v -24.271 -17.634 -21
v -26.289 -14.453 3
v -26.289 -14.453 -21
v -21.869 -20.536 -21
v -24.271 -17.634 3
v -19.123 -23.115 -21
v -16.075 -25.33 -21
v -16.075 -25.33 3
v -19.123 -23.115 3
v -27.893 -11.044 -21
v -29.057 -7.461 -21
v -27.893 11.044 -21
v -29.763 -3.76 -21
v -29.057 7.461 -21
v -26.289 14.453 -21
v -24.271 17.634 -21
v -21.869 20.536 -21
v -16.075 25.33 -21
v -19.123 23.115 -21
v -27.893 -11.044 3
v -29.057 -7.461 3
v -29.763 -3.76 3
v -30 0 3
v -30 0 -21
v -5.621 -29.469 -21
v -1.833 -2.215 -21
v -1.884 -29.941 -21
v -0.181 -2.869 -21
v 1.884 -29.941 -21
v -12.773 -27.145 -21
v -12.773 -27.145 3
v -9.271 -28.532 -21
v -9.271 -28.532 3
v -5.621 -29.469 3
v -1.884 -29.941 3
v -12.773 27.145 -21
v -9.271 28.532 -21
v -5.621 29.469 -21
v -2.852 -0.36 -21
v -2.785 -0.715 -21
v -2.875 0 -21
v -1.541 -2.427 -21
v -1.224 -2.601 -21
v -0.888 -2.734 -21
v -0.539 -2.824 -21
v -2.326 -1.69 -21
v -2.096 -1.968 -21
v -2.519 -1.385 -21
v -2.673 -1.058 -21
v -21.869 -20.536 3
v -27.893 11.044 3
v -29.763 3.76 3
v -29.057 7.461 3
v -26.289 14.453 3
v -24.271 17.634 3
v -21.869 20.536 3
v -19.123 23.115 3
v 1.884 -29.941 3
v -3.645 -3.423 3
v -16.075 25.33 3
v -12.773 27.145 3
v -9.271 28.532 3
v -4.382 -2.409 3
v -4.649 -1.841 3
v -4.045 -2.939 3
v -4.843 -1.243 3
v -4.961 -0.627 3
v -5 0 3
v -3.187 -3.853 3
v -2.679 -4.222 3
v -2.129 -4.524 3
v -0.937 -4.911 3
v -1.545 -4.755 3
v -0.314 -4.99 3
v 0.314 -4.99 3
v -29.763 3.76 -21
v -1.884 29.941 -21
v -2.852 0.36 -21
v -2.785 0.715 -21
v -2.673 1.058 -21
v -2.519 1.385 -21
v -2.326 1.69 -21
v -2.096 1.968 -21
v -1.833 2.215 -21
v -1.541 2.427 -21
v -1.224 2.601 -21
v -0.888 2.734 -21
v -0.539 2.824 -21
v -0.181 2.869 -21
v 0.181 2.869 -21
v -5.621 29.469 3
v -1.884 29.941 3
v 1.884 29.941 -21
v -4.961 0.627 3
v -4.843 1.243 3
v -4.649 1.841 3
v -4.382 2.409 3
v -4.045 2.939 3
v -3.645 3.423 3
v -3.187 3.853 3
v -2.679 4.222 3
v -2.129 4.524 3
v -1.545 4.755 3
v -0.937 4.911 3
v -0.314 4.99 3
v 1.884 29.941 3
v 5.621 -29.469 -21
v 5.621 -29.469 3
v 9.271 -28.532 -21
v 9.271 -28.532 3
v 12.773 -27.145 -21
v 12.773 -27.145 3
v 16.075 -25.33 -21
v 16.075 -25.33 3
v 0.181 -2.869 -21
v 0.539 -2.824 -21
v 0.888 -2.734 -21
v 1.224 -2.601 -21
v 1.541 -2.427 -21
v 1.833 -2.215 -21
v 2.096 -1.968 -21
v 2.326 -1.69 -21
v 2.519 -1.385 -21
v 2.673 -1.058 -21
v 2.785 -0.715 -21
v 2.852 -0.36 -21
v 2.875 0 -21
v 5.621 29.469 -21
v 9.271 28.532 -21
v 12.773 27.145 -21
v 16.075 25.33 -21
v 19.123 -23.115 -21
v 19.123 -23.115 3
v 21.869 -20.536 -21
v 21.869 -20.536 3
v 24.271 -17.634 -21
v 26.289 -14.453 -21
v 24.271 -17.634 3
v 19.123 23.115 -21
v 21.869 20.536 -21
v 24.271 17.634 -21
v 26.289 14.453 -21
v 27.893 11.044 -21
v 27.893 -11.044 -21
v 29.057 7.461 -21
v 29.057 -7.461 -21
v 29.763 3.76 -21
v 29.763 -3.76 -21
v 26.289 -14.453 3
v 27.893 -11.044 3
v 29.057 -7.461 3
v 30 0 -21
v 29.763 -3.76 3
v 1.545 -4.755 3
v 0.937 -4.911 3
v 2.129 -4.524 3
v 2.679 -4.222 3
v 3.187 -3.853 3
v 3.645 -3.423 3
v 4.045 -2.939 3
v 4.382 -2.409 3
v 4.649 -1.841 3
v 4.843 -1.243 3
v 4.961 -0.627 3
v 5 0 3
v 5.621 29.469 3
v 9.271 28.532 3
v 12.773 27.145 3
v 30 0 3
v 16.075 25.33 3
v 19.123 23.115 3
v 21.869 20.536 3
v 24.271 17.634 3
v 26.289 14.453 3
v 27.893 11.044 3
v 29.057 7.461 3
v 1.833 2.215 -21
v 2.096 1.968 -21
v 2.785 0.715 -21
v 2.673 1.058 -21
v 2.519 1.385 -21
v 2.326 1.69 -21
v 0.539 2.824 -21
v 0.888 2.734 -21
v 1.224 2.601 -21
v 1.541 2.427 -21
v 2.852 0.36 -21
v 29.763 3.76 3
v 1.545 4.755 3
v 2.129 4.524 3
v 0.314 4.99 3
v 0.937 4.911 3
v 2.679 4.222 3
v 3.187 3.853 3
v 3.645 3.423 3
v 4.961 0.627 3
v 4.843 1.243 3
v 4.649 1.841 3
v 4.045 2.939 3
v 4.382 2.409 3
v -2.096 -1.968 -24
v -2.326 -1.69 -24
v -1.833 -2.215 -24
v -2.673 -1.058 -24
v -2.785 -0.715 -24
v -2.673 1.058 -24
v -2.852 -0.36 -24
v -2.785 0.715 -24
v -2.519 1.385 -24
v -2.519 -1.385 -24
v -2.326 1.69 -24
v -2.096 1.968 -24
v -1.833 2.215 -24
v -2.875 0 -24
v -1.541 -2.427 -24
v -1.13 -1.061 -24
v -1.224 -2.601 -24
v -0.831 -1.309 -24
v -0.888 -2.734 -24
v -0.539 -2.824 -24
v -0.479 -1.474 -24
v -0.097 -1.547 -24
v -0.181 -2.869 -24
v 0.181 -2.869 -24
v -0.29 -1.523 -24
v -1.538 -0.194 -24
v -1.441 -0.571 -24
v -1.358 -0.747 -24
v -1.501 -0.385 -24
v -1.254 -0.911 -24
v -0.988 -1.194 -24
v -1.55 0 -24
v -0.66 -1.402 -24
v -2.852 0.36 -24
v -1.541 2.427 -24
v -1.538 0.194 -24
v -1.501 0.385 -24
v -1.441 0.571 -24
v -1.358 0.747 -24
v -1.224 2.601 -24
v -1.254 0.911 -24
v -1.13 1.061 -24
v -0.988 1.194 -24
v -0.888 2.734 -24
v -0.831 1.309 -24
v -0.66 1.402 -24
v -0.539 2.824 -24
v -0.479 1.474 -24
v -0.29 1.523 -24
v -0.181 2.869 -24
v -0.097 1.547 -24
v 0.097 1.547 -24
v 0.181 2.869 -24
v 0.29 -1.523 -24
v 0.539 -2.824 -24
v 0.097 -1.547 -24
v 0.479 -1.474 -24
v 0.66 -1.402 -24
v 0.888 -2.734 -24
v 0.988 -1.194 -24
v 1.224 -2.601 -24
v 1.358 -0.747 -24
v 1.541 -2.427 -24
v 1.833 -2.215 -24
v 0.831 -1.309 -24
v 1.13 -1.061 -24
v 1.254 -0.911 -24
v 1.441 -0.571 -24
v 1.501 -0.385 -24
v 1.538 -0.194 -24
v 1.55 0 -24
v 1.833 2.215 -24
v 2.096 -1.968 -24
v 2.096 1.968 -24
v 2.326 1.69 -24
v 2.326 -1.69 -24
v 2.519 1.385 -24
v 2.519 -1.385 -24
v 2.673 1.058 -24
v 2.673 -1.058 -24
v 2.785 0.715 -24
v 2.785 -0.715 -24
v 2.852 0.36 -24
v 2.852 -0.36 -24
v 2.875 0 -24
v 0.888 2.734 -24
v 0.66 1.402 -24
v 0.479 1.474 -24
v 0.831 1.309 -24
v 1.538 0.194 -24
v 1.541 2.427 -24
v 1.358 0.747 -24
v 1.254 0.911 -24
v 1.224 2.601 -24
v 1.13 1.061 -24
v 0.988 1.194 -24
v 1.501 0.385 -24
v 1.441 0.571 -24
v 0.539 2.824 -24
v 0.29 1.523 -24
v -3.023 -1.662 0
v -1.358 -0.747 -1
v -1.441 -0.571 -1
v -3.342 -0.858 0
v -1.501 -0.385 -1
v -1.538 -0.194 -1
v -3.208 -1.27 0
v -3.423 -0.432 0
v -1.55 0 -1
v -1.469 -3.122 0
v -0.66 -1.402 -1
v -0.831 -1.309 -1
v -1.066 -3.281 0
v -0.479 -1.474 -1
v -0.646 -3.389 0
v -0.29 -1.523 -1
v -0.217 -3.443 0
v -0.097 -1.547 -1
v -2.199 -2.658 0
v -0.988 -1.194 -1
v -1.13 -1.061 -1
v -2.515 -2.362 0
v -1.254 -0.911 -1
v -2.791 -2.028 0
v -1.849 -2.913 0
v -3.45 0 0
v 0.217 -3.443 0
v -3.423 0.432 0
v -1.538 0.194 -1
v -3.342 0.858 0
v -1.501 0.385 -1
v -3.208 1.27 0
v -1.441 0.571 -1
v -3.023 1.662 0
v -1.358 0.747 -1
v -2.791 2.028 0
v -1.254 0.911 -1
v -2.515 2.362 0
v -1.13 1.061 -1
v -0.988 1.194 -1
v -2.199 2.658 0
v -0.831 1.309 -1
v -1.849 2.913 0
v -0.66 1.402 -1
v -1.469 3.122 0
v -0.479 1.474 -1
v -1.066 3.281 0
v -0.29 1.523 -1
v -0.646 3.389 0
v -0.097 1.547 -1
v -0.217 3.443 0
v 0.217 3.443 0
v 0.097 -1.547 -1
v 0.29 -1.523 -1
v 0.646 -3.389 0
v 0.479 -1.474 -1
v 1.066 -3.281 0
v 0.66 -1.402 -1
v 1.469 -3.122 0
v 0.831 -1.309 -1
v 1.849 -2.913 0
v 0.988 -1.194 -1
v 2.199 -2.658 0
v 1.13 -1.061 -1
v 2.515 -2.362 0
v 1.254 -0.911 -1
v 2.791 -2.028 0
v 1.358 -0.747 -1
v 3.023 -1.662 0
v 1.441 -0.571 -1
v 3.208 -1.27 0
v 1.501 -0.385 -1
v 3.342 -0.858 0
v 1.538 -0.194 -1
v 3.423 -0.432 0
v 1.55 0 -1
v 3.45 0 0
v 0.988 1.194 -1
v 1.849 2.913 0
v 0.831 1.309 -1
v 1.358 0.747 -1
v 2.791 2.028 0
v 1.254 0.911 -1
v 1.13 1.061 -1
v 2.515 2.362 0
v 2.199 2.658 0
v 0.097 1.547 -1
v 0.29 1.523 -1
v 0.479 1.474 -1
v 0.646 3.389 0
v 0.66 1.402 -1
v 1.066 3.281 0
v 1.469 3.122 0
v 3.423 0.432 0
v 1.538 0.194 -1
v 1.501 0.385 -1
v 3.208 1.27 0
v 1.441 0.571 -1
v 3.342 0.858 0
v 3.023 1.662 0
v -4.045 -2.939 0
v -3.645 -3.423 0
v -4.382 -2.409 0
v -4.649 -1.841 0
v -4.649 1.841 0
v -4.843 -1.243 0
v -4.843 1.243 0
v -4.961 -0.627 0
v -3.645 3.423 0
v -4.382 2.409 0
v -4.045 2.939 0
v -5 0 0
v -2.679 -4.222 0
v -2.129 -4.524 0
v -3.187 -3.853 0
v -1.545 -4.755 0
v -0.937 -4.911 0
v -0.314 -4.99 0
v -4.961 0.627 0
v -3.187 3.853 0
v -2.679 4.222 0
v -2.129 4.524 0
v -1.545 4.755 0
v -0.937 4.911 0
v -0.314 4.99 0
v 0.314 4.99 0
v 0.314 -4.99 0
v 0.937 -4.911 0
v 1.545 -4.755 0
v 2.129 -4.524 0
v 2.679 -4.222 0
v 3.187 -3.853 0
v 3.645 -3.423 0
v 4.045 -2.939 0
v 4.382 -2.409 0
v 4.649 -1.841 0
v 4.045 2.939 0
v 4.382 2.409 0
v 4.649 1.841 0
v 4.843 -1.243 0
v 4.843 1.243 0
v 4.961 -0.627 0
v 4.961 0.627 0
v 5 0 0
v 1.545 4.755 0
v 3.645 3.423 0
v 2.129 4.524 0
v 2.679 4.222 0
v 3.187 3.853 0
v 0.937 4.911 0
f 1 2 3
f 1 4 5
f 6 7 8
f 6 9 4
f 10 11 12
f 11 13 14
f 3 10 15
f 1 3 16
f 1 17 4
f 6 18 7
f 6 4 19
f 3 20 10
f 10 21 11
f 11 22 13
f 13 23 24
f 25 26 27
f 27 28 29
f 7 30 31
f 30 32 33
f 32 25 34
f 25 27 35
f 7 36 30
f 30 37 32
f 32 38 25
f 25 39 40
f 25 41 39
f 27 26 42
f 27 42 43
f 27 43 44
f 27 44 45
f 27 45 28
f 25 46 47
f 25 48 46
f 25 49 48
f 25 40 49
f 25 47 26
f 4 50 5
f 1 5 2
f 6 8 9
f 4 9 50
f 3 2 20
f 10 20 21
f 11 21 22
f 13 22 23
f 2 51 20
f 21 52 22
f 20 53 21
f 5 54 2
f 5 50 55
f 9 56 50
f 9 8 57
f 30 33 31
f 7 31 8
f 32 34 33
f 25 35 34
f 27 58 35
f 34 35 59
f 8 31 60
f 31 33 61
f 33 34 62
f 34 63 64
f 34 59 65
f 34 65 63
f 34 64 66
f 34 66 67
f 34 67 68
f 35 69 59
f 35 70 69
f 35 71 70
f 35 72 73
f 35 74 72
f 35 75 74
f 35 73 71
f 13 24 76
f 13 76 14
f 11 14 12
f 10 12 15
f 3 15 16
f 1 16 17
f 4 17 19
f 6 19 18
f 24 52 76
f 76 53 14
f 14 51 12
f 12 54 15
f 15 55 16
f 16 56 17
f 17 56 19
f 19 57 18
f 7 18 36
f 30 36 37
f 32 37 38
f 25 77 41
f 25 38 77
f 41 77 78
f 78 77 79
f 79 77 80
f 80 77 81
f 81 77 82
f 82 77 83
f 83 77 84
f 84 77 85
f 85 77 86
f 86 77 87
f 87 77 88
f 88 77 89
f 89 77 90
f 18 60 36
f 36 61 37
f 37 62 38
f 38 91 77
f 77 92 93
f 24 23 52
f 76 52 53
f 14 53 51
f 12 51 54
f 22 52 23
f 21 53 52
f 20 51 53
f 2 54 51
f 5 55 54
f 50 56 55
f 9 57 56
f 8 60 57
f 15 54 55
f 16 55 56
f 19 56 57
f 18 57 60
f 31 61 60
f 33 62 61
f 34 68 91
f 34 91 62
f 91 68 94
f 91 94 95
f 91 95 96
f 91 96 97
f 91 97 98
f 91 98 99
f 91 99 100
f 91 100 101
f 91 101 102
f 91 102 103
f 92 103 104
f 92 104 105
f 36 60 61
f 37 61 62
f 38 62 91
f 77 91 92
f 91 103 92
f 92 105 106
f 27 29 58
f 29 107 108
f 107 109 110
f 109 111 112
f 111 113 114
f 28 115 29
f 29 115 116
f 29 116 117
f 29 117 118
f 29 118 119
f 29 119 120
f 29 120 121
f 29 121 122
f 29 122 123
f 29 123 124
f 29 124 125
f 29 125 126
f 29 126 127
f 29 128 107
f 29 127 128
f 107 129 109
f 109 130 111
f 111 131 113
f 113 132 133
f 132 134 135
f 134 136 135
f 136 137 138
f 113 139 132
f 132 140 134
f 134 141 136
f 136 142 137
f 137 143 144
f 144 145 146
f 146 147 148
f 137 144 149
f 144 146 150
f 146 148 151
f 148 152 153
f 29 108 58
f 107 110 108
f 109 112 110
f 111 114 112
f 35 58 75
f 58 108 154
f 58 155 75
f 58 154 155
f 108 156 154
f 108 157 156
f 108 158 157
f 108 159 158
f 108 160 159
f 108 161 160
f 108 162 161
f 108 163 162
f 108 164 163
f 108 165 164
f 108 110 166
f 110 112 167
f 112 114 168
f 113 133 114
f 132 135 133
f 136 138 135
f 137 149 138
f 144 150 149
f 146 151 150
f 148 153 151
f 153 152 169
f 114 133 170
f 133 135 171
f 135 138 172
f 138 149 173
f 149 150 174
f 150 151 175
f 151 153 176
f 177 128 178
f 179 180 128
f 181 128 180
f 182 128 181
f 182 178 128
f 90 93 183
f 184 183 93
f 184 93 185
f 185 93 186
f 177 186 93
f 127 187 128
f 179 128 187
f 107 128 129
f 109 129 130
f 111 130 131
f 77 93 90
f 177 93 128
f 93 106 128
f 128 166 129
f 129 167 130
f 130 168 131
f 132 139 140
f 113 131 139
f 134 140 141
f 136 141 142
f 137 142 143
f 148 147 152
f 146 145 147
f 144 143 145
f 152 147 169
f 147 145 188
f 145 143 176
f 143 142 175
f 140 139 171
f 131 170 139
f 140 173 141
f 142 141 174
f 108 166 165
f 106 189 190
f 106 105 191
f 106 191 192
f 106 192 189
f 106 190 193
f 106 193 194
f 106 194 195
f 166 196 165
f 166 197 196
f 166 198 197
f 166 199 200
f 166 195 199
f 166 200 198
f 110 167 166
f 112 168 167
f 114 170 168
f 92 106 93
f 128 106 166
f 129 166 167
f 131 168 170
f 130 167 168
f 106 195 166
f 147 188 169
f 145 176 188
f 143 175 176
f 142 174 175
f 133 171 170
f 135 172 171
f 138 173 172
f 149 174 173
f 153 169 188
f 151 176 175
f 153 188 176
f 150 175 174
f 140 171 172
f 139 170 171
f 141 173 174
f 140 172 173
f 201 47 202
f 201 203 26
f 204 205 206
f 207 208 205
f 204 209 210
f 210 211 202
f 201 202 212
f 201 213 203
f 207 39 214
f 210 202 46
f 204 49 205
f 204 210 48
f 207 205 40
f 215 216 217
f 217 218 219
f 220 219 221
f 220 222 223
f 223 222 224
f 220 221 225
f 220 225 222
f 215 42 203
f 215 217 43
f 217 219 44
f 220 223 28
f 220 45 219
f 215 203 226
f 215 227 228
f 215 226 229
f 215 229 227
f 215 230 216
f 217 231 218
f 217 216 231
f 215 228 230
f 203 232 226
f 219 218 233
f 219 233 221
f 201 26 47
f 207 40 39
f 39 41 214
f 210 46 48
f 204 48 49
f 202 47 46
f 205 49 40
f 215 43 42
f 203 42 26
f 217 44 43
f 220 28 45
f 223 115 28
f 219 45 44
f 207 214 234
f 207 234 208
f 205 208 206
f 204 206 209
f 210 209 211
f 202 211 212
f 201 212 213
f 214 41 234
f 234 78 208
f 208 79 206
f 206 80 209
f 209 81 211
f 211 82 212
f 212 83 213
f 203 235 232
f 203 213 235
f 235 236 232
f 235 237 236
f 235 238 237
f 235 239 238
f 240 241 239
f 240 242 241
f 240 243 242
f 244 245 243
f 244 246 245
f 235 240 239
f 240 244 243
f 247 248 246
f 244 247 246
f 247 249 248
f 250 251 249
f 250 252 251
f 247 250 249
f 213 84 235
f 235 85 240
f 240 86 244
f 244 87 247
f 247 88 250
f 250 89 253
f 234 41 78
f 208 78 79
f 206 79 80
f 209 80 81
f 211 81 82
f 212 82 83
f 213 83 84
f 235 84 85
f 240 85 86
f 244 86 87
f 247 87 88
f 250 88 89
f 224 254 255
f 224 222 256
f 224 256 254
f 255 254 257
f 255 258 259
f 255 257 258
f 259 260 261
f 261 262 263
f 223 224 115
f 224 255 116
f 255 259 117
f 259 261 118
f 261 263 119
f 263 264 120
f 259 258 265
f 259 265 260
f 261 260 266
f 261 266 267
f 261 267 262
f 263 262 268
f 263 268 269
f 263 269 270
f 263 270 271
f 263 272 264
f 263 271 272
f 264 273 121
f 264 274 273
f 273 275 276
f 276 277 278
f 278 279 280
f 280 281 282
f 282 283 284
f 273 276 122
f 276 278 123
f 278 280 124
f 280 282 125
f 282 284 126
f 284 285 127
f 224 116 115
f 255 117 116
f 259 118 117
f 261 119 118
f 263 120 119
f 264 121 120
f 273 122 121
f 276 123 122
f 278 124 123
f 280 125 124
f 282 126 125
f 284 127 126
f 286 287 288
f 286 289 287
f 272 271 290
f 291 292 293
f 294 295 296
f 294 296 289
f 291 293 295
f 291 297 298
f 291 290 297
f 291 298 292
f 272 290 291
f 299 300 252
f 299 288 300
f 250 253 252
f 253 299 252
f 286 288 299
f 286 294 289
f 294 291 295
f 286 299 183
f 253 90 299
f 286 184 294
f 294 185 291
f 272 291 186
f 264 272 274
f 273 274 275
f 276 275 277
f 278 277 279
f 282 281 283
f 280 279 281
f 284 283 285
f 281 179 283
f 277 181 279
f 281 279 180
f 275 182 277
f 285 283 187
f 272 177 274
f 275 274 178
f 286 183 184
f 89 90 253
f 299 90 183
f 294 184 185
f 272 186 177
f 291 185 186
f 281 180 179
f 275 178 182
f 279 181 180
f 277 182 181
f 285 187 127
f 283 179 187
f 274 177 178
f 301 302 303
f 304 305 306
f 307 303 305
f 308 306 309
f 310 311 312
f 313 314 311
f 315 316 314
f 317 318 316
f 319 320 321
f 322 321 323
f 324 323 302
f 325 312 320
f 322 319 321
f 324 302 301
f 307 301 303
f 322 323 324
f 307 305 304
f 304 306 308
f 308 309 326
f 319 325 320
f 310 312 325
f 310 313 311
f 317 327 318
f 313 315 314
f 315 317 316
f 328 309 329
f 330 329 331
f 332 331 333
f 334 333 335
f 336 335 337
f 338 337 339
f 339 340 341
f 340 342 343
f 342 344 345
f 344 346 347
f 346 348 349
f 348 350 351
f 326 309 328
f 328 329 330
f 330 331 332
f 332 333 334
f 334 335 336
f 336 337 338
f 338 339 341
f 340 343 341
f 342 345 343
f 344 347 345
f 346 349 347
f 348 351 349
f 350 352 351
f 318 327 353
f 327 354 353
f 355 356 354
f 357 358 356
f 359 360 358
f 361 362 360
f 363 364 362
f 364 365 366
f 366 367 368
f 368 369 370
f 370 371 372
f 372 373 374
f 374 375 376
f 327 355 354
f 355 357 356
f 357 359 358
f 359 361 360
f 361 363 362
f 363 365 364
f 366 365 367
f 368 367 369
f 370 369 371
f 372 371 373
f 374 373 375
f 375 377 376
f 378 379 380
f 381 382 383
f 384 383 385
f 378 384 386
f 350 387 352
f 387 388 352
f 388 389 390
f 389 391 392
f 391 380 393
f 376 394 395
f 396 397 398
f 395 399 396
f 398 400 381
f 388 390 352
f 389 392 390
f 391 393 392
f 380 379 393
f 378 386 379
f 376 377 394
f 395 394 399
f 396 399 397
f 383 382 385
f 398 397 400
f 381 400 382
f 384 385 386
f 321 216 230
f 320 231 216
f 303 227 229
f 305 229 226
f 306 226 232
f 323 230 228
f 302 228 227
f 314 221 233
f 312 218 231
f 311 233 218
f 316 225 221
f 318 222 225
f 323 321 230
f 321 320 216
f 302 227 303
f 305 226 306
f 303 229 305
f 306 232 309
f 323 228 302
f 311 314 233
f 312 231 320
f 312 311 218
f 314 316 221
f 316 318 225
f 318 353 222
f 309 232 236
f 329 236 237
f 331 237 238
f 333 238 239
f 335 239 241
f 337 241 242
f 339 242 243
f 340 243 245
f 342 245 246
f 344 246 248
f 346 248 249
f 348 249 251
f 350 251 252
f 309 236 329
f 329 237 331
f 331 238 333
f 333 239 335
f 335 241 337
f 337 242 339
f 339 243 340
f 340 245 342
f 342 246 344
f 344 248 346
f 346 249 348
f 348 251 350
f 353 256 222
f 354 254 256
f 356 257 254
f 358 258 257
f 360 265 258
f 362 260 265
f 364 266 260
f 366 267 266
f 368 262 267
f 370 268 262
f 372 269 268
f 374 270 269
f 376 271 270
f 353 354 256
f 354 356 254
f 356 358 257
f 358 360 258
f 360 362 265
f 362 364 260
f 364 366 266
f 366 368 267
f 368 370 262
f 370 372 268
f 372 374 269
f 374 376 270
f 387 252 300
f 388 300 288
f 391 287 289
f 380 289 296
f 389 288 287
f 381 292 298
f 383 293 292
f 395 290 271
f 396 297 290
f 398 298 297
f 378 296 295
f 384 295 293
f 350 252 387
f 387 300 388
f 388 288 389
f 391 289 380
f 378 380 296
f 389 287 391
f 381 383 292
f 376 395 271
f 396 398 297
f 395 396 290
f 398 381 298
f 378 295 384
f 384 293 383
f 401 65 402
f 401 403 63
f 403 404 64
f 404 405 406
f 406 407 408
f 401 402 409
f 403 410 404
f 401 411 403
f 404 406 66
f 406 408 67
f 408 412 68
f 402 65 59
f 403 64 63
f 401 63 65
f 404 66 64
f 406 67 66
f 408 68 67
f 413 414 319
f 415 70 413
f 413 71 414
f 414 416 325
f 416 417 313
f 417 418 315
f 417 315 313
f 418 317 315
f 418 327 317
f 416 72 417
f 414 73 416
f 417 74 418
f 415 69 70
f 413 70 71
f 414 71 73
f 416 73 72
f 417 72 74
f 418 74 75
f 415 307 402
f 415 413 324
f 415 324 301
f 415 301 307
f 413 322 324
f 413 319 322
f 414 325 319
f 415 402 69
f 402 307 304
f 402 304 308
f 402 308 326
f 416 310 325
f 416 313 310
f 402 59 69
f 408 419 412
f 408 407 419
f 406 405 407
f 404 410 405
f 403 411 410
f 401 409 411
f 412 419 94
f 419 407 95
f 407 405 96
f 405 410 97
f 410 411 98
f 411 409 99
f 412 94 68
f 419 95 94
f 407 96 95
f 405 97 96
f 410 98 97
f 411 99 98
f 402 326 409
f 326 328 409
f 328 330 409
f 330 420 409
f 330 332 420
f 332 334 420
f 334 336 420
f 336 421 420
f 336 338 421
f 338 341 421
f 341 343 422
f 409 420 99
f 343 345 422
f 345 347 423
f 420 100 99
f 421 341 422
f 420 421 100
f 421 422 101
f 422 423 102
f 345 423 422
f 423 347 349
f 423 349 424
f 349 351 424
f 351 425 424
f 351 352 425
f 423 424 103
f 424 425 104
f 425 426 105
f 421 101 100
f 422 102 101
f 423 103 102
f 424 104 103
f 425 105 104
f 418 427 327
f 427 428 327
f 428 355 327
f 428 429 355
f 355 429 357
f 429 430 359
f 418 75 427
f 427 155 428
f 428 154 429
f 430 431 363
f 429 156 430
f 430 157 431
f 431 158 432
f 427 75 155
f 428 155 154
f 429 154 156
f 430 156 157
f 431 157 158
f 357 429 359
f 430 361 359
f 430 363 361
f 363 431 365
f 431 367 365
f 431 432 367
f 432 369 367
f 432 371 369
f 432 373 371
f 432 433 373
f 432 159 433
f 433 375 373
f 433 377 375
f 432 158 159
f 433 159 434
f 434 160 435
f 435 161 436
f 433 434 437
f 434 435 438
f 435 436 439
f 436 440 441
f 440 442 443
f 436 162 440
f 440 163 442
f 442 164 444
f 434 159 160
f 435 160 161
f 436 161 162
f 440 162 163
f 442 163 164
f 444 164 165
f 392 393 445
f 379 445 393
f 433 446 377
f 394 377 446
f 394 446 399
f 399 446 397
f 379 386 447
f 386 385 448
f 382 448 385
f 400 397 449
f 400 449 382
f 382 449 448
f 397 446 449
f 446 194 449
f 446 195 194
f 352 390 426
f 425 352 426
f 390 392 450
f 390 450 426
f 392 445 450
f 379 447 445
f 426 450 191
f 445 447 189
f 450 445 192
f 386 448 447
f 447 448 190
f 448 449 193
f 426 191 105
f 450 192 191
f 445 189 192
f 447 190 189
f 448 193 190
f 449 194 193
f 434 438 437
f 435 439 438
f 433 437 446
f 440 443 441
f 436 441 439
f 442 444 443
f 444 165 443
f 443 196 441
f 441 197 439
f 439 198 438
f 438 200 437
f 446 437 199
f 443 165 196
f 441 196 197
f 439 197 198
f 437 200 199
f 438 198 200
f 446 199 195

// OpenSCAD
$fn = 50;


difference() {
	union() {
		translate(v = [0, 0, -21.0000000000]) {
			cylinder(h = 24, r = 30.0000000000);
		}
		#translate(v = [0, 0, -24.0000000000]) {
			cylinder(h = 24, r = 2.8750000000);
		}
	}
	union() {
		translate(v = [0, 0, 0]) {
			rotate(a = [0, 0, 0]) {
				difference() {
					union() {
						translate(v = [0, 0, -24.0000000000]) {
							cylinder(h = 24, r = 1.2500000000);
						}
						translate(v = [0, 0, -1.0000000000]) {
							cylinder(h = 1.0000000000, r1 = 1.5500000000, r2 = 3.4500000000);
						}
						translate(v = [0, 0, -24.0000000000]) {
							cylinder(h = 24, r = 1.5500000000);
						}
						translate(v = [0, 0, -24.0000000000]) {
							cylinder(h = 24, r = 1.2500000000);
						}
					}
					union();
				}
			}
		}
		#cylinder(h = 3, r = 5.0000000000);
	}
}
